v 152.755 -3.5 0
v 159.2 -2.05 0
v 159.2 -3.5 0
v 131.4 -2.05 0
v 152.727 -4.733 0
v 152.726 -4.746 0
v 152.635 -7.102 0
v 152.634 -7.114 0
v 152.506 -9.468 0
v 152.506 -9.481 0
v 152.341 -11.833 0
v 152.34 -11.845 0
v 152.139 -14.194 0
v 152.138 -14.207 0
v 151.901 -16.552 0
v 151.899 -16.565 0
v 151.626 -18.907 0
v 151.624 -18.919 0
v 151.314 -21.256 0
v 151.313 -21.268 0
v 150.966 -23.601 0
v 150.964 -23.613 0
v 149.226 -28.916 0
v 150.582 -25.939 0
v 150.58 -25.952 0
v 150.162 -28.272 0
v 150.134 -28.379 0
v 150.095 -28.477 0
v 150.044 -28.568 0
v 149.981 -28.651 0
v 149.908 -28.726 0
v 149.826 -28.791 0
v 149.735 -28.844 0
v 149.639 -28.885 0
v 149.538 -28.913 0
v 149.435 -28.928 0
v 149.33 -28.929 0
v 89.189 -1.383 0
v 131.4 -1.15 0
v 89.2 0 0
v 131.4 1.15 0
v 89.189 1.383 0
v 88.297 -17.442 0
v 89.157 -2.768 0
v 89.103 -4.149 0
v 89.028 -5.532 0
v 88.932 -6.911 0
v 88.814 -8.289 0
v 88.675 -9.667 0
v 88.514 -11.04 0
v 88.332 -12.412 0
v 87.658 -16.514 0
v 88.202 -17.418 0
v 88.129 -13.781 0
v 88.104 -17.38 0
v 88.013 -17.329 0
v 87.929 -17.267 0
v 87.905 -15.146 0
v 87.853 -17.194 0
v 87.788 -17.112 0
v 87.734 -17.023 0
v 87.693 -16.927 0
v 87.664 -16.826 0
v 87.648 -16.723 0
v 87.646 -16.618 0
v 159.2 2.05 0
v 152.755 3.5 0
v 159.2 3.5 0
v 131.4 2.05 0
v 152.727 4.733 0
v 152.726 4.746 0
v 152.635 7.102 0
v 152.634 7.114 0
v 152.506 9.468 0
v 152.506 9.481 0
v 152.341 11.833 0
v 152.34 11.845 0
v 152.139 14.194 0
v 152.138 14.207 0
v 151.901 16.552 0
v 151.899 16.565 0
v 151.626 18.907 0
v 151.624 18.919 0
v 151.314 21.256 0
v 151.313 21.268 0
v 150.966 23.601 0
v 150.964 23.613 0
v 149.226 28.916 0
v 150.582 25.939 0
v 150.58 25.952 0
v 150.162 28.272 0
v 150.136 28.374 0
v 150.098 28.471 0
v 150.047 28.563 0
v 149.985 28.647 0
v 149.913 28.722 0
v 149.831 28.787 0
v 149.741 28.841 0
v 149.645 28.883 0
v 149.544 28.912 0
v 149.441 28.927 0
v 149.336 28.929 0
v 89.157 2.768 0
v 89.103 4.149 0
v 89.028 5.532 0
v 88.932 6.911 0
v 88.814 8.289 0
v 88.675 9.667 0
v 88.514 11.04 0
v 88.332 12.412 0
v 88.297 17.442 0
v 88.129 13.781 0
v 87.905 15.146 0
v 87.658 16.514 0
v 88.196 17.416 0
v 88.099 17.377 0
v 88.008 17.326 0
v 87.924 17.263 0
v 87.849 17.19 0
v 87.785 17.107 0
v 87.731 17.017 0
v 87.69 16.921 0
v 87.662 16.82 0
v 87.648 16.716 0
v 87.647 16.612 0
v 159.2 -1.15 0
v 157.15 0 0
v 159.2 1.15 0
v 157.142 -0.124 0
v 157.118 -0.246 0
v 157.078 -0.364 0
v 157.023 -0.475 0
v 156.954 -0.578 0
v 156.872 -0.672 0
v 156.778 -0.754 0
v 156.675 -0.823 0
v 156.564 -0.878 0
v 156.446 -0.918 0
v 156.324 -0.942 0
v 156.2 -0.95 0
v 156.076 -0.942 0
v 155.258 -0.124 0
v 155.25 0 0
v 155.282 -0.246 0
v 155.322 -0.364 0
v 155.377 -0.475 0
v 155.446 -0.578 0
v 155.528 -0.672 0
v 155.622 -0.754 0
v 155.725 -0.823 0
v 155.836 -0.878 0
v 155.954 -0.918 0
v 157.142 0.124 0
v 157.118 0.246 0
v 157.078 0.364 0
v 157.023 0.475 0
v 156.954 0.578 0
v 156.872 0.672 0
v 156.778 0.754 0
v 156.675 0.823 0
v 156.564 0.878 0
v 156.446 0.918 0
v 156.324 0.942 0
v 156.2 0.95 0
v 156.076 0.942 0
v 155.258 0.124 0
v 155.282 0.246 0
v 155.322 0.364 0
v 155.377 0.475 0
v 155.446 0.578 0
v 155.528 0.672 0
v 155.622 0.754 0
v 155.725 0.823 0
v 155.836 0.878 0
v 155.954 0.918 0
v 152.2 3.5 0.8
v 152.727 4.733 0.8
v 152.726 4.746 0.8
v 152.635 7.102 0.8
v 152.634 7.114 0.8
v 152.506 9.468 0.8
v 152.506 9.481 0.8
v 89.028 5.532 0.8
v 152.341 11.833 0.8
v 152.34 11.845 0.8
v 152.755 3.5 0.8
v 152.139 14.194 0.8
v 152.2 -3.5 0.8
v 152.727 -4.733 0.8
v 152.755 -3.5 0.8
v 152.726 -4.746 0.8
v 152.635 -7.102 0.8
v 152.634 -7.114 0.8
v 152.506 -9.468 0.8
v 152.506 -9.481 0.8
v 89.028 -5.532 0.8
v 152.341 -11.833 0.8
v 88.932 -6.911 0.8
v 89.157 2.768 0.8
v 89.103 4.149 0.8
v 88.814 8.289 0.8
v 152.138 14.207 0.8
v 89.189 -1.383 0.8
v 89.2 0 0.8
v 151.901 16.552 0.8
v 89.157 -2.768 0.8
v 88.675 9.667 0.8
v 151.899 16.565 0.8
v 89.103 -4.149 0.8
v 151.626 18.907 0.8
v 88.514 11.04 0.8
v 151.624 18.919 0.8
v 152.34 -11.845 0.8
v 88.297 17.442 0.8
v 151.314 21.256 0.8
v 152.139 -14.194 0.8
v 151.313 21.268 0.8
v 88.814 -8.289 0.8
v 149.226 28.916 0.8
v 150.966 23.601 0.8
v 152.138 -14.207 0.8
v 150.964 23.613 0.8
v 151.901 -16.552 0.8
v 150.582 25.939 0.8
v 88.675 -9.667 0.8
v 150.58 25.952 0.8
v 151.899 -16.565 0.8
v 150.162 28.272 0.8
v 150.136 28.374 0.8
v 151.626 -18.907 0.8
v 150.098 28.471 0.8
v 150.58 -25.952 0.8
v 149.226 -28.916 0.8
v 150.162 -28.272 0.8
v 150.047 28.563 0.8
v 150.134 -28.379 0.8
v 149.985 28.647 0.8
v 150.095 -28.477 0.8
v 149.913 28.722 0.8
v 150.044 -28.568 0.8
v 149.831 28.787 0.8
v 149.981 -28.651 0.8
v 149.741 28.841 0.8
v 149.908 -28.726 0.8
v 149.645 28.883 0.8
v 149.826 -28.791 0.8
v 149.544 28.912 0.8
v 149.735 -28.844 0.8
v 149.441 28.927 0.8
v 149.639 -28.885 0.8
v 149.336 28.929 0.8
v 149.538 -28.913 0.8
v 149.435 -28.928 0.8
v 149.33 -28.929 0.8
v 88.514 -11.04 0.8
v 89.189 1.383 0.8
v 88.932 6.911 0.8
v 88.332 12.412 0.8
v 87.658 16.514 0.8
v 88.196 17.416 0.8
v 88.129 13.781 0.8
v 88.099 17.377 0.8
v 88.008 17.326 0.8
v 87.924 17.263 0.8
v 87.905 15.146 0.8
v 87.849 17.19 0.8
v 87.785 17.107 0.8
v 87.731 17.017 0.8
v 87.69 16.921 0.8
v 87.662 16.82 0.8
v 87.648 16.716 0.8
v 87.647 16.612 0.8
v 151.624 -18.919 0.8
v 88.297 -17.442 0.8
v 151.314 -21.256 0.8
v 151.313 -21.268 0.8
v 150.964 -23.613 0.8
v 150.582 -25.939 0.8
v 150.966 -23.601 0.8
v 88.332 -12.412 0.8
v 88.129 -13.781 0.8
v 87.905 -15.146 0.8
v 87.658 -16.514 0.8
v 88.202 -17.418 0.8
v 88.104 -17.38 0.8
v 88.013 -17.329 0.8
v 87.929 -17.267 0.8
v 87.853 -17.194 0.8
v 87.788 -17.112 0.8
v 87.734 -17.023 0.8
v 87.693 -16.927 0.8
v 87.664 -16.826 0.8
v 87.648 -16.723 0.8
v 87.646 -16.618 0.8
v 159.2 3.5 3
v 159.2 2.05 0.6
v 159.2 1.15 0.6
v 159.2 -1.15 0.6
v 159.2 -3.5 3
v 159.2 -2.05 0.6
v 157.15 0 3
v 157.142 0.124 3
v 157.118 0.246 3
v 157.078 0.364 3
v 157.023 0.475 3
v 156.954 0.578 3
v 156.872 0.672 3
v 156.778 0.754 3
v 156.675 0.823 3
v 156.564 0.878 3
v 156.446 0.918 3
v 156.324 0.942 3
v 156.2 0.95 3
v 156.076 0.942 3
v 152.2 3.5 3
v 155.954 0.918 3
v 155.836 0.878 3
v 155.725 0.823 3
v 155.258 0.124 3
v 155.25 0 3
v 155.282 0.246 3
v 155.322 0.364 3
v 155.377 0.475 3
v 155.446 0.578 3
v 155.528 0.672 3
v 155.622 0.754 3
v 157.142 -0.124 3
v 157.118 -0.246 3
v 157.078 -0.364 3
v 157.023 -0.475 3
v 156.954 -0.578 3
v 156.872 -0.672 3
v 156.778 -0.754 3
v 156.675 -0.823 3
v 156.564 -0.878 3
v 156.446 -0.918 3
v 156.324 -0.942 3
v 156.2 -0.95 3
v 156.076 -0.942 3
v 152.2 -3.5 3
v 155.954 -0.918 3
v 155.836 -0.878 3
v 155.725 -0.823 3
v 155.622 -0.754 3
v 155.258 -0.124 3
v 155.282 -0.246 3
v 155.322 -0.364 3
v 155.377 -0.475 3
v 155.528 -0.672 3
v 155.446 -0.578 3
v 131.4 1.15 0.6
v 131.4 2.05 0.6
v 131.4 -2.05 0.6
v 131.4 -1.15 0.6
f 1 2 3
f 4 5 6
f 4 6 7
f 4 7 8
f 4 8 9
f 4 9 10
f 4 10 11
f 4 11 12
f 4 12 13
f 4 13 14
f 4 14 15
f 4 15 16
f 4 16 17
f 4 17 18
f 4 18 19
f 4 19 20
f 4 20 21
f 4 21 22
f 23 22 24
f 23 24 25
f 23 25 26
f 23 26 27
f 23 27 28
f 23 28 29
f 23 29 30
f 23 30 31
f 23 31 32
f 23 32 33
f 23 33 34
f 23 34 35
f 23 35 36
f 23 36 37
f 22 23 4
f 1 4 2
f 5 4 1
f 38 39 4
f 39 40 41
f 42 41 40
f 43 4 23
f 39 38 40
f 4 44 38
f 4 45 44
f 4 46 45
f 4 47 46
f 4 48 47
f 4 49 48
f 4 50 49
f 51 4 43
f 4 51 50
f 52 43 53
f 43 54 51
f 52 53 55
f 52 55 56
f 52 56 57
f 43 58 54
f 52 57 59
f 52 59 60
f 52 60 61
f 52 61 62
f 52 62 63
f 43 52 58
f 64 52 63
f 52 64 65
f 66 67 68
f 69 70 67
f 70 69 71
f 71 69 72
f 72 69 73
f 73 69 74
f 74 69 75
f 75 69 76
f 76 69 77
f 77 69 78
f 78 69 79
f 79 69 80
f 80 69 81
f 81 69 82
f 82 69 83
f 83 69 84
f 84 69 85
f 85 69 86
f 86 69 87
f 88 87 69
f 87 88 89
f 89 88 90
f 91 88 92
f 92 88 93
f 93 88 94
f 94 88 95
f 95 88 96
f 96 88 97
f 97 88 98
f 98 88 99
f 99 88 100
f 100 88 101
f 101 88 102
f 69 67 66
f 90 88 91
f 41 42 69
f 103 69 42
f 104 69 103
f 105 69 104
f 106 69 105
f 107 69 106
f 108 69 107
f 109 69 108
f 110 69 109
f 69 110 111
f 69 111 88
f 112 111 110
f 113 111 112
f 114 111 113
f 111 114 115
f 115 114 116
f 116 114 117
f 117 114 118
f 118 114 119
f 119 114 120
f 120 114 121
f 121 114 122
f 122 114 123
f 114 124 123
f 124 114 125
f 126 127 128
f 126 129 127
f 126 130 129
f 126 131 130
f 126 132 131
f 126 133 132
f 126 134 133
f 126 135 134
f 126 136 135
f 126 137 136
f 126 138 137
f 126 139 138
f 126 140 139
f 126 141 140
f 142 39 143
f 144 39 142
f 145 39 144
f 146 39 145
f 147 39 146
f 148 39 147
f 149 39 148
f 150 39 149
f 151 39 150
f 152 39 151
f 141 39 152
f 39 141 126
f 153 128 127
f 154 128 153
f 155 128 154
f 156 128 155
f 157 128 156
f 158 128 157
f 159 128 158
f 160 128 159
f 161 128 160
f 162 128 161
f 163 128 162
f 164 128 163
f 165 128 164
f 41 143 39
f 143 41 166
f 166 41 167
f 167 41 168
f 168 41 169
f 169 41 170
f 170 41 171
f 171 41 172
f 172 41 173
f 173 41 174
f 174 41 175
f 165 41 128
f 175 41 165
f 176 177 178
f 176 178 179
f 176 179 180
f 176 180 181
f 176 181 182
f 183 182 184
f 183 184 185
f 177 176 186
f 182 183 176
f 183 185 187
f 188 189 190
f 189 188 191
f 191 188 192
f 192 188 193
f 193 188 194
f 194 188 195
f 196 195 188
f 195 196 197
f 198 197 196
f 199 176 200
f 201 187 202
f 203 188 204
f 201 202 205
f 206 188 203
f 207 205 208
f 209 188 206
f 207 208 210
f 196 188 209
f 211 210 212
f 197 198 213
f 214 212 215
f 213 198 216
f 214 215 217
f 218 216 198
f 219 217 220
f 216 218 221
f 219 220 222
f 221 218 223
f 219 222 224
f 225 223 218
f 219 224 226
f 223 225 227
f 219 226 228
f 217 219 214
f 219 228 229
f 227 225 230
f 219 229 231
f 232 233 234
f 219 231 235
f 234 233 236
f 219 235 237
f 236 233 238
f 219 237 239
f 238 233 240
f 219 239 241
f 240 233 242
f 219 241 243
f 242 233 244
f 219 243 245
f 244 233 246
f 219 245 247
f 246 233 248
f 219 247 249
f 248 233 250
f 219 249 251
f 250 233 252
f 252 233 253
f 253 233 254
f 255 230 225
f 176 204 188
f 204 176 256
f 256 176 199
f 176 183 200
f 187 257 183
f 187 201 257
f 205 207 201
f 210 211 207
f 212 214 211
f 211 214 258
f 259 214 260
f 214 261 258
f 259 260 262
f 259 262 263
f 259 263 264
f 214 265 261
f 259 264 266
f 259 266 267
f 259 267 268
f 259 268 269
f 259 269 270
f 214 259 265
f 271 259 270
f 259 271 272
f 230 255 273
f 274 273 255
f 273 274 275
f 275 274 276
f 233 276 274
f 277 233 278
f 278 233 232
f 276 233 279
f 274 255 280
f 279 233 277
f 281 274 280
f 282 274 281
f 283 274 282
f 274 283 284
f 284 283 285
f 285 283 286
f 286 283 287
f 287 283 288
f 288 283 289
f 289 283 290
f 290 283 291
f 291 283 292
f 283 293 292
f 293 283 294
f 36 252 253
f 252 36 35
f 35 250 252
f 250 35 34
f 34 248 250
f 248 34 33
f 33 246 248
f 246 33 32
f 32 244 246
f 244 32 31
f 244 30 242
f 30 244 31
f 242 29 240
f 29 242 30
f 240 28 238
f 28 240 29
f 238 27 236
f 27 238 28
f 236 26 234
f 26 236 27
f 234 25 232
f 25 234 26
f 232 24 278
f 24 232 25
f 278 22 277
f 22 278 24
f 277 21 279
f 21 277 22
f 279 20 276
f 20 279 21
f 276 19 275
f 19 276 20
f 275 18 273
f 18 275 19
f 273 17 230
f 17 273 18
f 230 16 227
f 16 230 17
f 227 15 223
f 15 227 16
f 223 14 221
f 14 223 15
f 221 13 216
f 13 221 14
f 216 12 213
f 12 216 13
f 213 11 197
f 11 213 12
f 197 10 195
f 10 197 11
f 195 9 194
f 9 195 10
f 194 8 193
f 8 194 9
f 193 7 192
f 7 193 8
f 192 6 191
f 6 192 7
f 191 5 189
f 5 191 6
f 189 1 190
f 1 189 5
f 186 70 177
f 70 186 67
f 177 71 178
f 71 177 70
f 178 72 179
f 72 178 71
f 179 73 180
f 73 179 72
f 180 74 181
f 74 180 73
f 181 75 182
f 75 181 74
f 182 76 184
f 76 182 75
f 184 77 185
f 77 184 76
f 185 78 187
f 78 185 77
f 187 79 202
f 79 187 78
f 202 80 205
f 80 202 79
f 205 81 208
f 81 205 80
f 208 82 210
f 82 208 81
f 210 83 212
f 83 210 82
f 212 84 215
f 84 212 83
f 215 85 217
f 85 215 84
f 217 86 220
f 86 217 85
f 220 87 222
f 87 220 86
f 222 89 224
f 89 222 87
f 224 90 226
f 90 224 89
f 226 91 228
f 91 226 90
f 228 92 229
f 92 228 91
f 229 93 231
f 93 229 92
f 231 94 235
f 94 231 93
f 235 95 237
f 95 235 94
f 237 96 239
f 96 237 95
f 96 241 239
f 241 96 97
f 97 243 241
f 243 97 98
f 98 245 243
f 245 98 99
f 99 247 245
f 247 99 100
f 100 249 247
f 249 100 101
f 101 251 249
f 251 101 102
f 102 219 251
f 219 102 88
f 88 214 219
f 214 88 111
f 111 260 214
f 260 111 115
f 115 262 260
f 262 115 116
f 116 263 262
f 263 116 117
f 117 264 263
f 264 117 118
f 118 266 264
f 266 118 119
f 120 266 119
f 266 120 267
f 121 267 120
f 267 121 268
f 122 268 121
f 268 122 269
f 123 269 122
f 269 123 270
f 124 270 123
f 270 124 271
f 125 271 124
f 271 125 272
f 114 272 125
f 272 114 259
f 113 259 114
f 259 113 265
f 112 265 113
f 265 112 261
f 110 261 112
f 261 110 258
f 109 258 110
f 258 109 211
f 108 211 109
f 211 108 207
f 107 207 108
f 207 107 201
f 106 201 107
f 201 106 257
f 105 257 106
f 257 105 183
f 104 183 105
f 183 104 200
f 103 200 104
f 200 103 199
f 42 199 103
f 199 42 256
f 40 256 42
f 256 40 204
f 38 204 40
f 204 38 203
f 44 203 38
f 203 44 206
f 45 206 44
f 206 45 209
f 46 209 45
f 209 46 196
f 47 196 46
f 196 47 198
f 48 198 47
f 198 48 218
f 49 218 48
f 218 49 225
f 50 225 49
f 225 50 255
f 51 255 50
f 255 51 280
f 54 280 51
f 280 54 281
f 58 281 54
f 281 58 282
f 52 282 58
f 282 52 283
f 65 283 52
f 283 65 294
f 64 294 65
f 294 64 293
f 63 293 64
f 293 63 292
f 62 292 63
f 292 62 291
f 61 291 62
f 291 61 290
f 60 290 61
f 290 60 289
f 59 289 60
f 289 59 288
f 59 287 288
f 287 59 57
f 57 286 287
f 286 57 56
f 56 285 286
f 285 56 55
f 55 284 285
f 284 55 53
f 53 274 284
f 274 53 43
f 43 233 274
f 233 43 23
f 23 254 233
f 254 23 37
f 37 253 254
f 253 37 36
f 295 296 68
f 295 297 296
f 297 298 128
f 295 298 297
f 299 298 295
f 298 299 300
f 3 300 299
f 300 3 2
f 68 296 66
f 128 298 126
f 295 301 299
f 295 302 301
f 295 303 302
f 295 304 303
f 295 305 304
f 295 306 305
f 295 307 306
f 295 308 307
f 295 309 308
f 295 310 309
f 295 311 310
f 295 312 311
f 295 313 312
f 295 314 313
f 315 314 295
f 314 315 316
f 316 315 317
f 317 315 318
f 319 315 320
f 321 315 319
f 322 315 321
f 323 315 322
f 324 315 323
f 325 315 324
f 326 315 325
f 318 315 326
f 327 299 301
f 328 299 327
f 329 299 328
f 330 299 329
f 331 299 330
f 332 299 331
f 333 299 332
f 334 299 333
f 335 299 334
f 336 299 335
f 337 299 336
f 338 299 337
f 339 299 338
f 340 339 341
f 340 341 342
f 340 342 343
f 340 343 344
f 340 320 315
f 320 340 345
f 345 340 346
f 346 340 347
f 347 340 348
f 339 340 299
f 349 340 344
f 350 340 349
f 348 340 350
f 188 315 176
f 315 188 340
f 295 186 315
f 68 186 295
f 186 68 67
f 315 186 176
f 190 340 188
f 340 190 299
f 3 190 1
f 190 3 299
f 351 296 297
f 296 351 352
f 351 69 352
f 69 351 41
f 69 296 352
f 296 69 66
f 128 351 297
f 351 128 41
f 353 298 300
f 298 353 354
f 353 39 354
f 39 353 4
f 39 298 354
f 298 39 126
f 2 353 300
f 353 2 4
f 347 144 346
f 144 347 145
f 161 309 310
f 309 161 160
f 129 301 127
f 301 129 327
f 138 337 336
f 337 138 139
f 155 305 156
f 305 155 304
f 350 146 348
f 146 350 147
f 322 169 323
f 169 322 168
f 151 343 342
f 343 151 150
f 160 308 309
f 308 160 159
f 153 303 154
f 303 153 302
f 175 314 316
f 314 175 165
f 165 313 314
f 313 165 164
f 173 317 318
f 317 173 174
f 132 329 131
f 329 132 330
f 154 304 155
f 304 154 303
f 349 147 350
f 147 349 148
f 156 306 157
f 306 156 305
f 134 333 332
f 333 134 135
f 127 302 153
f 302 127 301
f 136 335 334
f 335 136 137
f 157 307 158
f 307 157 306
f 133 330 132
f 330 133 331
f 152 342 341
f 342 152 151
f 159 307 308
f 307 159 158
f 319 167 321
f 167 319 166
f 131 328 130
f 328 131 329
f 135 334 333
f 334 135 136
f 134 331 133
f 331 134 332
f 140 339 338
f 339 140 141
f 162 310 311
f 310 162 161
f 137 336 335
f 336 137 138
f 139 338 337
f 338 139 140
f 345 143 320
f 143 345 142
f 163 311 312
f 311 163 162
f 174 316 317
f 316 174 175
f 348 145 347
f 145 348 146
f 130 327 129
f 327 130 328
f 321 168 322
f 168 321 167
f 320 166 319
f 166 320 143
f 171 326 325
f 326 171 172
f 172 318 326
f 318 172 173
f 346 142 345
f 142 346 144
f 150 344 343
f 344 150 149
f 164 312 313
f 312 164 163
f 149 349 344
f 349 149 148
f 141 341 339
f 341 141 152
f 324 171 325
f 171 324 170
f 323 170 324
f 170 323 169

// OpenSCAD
// Gen-DP — bobbin LID (top flange + locating tab). Print x12, flange face DOWN on the bed.
// CA-glue onto the hub top BEFORE winding. Tab = lap joint into the stator tab pocket; 1.75 mm filament
// pin through pin hole + stator ledge, trim flush. Lead slots carry both leads flush.
include <parameters.scad>;
$fn = 48;
module sector_2d(r_in, r_out, ang) {
    polygon([
        for (a = [-ang/2 : ang/24 : ang/2]) [r_in*cos(a), r_in*sin(a)],
        for (a = [ang/2 : -ang/24 : -ang/2]) [r_out*cos(a), r_out*sin(a)]
    ]);
}
module footprint_2d() { offset(r=wall) sector_2d(coil_id_r, coil_od_r, span_deg); }
module hub_2d()       { offset(delta=-coil_core_inset) sector_2d(coil_id_r, coil_od_r, span_deg); }

difference() {
    union() {
        linear_extrude(flange_t) footprint_2d();
        translate([coil_od_r + 0.2, -tab_w/2, 0]) cube([tab_len, tab_w, tab_h]);
    }
    translate([coil_mount_r, 0, -0.1]) cylinder(d=pin_d, h=tab_h + 1);
    for (y = [lead_y, -lead_y])
        translate([coil_od_r - coil_core_inset - 0.5, y - lead_slot_w/2, -0.1])
            cube([coil_core_inset + tab_len + 2, lead_slot_w, lead_groove_d + 0.1]);
}
